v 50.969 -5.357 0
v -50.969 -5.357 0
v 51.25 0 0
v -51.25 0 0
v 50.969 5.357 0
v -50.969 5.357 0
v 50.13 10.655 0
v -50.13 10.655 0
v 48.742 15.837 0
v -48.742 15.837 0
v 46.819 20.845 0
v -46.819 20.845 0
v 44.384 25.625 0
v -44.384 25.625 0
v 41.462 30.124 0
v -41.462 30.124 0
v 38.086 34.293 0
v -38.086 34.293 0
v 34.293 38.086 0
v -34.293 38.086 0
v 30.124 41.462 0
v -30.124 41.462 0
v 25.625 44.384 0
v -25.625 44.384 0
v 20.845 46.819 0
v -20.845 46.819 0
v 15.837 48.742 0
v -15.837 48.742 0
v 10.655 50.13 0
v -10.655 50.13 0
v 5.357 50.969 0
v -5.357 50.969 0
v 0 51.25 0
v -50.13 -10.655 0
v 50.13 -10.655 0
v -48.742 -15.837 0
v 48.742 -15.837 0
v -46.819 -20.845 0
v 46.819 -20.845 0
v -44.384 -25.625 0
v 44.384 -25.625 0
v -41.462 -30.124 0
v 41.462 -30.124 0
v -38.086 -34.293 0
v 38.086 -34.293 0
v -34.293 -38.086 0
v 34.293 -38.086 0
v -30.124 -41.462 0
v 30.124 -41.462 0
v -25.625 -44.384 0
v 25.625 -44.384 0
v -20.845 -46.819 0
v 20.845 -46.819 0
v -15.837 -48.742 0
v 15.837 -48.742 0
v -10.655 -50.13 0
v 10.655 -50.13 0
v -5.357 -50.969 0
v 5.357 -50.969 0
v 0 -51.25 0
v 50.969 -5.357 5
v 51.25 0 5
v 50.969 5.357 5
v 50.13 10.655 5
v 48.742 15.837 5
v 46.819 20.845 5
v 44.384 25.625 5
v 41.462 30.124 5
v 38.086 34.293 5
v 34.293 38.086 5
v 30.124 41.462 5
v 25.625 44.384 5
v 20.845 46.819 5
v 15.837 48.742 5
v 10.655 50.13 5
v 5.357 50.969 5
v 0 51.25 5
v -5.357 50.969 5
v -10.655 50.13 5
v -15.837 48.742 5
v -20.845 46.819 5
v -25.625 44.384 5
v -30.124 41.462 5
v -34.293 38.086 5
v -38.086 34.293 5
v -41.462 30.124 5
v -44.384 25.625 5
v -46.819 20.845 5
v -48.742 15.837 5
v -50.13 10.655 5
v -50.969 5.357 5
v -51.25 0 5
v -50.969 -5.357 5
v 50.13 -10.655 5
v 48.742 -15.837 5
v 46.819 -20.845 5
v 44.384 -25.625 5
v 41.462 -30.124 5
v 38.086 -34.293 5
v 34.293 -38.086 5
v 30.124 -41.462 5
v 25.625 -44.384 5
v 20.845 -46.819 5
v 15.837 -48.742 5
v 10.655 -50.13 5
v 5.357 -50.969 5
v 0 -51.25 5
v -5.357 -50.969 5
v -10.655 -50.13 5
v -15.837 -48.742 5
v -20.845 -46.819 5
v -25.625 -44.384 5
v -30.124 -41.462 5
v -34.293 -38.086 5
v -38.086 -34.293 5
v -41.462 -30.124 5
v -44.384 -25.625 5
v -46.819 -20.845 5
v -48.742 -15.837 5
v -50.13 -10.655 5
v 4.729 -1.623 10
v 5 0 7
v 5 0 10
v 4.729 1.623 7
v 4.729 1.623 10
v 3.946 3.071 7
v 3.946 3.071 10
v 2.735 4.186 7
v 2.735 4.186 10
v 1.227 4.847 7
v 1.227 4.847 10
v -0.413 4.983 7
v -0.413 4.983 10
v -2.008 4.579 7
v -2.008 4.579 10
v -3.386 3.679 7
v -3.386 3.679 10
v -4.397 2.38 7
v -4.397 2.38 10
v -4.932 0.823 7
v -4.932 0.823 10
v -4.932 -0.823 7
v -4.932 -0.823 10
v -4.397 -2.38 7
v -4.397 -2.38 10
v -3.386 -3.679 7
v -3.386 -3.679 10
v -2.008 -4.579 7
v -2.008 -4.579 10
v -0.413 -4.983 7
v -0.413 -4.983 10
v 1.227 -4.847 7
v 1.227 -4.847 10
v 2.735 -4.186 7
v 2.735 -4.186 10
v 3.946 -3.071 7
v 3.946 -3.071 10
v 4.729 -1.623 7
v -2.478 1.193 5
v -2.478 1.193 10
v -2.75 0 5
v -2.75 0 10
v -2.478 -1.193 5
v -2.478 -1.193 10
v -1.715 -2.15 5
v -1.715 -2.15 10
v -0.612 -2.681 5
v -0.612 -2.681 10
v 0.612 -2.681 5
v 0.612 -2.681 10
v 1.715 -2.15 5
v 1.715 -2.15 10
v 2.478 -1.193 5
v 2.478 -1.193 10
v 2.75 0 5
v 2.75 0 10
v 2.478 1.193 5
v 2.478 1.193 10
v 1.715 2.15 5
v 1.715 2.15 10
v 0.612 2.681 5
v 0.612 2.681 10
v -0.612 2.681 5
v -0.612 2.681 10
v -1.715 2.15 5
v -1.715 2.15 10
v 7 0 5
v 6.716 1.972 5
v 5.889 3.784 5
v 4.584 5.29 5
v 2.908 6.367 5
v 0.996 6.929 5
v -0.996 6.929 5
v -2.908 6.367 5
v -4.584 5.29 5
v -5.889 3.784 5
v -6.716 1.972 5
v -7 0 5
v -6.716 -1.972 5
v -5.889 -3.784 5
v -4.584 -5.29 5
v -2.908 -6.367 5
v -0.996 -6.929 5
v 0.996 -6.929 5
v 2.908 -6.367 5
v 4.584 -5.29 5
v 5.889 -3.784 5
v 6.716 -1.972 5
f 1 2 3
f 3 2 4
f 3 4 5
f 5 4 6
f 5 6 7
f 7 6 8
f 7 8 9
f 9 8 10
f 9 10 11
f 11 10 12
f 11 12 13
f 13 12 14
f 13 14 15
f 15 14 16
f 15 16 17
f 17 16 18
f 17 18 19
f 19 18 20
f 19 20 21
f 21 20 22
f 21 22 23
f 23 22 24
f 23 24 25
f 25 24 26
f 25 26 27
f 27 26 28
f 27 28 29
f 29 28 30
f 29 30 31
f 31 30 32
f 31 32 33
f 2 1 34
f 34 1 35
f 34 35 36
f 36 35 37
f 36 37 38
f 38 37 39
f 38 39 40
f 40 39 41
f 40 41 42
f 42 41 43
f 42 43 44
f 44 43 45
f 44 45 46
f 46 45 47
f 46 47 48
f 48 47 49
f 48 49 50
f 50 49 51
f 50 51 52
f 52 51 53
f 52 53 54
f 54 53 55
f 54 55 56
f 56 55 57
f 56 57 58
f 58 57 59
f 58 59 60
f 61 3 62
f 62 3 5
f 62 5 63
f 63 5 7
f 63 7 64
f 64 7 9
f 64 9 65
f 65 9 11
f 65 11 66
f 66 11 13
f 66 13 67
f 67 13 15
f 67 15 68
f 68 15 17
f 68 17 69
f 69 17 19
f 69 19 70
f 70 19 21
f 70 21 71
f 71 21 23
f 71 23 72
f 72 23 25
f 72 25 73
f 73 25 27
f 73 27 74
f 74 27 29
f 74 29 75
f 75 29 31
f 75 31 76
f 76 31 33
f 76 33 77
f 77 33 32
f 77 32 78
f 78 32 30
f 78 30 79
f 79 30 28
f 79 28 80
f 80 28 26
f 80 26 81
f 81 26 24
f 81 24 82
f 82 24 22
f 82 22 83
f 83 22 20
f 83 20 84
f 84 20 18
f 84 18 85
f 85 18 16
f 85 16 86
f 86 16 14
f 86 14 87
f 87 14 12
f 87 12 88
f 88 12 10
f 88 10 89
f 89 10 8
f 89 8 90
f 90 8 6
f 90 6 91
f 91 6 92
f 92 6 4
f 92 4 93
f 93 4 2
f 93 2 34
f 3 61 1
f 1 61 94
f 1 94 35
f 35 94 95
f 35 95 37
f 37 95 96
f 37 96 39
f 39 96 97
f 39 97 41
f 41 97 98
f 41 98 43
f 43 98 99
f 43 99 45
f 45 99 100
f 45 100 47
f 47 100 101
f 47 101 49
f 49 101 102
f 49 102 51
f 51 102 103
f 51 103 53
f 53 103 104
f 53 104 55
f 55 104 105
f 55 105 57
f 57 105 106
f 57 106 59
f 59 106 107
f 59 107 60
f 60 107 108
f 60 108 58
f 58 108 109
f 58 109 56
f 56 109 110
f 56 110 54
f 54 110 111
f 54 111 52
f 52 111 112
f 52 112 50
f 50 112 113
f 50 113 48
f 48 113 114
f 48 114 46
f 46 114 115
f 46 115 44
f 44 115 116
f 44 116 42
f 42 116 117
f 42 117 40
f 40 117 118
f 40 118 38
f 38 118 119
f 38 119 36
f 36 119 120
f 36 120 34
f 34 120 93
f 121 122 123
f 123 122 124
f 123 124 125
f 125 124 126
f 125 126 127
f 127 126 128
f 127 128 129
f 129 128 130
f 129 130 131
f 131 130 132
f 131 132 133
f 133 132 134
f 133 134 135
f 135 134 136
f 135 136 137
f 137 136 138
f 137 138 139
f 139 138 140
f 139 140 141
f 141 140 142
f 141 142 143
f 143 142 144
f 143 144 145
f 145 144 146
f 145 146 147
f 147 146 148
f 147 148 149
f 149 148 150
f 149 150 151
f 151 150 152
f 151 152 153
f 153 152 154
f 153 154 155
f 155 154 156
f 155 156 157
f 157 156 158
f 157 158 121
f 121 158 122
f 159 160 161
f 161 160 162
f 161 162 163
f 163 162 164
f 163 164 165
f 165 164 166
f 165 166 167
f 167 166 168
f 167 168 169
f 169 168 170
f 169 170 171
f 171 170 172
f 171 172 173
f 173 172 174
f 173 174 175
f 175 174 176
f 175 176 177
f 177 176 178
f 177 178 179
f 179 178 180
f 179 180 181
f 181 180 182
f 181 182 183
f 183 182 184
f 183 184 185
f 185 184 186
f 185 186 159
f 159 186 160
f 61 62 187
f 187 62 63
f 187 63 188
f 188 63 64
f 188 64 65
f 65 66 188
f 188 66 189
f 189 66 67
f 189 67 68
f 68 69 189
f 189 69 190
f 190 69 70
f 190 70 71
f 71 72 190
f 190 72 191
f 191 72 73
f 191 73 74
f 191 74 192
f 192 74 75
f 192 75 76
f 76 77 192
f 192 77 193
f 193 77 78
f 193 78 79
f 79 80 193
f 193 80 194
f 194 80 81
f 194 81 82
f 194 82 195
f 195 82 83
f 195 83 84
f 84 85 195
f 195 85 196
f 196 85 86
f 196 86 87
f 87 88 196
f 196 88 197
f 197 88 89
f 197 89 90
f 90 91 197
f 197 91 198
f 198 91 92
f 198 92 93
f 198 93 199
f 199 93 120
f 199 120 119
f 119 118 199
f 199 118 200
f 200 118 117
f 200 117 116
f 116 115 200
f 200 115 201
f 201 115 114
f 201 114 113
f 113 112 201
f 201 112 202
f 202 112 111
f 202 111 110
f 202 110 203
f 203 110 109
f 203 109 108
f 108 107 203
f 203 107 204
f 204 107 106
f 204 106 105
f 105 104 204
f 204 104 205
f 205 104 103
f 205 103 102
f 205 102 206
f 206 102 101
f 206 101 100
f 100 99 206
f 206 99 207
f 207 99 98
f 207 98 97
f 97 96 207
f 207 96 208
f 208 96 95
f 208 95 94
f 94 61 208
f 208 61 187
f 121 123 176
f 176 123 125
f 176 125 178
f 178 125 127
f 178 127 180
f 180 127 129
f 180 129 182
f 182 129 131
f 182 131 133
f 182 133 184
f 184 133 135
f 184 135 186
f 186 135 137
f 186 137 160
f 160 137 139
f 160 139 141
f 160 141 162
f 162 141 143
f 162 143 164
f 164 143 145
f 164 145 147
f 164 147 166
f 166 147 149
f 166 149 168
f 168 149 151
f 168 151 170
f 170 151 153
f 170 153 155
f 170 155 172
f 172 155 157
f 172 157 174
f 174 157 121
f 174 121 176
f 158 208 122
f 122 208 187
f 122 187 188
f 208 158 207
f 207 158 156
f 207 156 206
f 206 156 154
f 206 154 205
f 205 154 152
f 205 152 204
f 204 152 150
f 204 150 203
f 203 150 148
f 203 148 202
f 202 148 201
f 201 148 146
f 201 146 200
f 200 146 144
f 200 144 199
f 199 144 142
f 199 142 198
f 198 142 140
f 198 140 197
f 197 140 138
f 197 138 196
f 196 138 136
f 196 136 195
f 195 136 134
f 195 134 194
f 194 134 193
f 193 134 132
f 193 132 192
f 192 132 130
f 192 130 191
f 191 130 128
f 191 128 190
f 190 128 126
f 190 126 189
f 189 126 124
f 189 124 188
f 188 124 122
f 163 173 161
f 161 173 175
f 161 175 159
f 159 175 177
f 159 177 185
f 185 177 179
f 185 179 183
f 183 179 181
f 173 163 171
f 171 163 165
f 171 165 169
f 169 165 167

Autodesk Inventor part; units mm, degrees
ref_plane "YZ Plane" through (0, 0, 0) normal (1, 0, 0) x (0, 1, 0)
ref_plane "XZ Plane" through (0, 0, 0) normal (0, 1, 0) x (-1, 0, 0)
ref_plane "XY Plane" through (0, 0, 0) normal (0, 0, 1) x (1, 0, 0)
sketch "Sketch4" plane through (0, 0, 0) normal (0, 0, 1) x (1, 0, 0)
  circle A0 centre (0, 0) radius 51.25
  circle A1 centre (0, 0) radius 2.75
  dimension "d10" = 102.5
  dimension "d11" = 5.5
extrude "Extrusion4" add sketch "Sketch4" along normal blind 5
sketch "Sketch5" plane through (0, 0, 5) normal (0, 0, 1) x (1, 0, 0)
  circle A0 centre (0, 0) radius 2.75 projected
  circle A1 centre (0, 0) radius 2.75
  circle A2 centre (0, 0) radius 5
  dimension "d14" = 10
extrude "Extrusion5" add sketch "Sketch5" along normal blind 5
chamfer "Chamfer1" distance 2 angle 45 1 edges at (-5, 0, 5)
sketch "Sketch6" plane through (0, 0, 0) normal (0, 0, -1) x (-1, 0, 0)
  circle A0 centre (0, 0) radius 2.75 projected
  circle A1 centre (0, 0) radius 2.75
extrude "Extrusion6" add sketch "Sketch6" against normal blind 5
sketch "Sketch7" plane through (0, 0, 0) normal (0, 0, -1) x (-1, 0, 0)
  point P0 (0, 0)
properties part number "bottom"
